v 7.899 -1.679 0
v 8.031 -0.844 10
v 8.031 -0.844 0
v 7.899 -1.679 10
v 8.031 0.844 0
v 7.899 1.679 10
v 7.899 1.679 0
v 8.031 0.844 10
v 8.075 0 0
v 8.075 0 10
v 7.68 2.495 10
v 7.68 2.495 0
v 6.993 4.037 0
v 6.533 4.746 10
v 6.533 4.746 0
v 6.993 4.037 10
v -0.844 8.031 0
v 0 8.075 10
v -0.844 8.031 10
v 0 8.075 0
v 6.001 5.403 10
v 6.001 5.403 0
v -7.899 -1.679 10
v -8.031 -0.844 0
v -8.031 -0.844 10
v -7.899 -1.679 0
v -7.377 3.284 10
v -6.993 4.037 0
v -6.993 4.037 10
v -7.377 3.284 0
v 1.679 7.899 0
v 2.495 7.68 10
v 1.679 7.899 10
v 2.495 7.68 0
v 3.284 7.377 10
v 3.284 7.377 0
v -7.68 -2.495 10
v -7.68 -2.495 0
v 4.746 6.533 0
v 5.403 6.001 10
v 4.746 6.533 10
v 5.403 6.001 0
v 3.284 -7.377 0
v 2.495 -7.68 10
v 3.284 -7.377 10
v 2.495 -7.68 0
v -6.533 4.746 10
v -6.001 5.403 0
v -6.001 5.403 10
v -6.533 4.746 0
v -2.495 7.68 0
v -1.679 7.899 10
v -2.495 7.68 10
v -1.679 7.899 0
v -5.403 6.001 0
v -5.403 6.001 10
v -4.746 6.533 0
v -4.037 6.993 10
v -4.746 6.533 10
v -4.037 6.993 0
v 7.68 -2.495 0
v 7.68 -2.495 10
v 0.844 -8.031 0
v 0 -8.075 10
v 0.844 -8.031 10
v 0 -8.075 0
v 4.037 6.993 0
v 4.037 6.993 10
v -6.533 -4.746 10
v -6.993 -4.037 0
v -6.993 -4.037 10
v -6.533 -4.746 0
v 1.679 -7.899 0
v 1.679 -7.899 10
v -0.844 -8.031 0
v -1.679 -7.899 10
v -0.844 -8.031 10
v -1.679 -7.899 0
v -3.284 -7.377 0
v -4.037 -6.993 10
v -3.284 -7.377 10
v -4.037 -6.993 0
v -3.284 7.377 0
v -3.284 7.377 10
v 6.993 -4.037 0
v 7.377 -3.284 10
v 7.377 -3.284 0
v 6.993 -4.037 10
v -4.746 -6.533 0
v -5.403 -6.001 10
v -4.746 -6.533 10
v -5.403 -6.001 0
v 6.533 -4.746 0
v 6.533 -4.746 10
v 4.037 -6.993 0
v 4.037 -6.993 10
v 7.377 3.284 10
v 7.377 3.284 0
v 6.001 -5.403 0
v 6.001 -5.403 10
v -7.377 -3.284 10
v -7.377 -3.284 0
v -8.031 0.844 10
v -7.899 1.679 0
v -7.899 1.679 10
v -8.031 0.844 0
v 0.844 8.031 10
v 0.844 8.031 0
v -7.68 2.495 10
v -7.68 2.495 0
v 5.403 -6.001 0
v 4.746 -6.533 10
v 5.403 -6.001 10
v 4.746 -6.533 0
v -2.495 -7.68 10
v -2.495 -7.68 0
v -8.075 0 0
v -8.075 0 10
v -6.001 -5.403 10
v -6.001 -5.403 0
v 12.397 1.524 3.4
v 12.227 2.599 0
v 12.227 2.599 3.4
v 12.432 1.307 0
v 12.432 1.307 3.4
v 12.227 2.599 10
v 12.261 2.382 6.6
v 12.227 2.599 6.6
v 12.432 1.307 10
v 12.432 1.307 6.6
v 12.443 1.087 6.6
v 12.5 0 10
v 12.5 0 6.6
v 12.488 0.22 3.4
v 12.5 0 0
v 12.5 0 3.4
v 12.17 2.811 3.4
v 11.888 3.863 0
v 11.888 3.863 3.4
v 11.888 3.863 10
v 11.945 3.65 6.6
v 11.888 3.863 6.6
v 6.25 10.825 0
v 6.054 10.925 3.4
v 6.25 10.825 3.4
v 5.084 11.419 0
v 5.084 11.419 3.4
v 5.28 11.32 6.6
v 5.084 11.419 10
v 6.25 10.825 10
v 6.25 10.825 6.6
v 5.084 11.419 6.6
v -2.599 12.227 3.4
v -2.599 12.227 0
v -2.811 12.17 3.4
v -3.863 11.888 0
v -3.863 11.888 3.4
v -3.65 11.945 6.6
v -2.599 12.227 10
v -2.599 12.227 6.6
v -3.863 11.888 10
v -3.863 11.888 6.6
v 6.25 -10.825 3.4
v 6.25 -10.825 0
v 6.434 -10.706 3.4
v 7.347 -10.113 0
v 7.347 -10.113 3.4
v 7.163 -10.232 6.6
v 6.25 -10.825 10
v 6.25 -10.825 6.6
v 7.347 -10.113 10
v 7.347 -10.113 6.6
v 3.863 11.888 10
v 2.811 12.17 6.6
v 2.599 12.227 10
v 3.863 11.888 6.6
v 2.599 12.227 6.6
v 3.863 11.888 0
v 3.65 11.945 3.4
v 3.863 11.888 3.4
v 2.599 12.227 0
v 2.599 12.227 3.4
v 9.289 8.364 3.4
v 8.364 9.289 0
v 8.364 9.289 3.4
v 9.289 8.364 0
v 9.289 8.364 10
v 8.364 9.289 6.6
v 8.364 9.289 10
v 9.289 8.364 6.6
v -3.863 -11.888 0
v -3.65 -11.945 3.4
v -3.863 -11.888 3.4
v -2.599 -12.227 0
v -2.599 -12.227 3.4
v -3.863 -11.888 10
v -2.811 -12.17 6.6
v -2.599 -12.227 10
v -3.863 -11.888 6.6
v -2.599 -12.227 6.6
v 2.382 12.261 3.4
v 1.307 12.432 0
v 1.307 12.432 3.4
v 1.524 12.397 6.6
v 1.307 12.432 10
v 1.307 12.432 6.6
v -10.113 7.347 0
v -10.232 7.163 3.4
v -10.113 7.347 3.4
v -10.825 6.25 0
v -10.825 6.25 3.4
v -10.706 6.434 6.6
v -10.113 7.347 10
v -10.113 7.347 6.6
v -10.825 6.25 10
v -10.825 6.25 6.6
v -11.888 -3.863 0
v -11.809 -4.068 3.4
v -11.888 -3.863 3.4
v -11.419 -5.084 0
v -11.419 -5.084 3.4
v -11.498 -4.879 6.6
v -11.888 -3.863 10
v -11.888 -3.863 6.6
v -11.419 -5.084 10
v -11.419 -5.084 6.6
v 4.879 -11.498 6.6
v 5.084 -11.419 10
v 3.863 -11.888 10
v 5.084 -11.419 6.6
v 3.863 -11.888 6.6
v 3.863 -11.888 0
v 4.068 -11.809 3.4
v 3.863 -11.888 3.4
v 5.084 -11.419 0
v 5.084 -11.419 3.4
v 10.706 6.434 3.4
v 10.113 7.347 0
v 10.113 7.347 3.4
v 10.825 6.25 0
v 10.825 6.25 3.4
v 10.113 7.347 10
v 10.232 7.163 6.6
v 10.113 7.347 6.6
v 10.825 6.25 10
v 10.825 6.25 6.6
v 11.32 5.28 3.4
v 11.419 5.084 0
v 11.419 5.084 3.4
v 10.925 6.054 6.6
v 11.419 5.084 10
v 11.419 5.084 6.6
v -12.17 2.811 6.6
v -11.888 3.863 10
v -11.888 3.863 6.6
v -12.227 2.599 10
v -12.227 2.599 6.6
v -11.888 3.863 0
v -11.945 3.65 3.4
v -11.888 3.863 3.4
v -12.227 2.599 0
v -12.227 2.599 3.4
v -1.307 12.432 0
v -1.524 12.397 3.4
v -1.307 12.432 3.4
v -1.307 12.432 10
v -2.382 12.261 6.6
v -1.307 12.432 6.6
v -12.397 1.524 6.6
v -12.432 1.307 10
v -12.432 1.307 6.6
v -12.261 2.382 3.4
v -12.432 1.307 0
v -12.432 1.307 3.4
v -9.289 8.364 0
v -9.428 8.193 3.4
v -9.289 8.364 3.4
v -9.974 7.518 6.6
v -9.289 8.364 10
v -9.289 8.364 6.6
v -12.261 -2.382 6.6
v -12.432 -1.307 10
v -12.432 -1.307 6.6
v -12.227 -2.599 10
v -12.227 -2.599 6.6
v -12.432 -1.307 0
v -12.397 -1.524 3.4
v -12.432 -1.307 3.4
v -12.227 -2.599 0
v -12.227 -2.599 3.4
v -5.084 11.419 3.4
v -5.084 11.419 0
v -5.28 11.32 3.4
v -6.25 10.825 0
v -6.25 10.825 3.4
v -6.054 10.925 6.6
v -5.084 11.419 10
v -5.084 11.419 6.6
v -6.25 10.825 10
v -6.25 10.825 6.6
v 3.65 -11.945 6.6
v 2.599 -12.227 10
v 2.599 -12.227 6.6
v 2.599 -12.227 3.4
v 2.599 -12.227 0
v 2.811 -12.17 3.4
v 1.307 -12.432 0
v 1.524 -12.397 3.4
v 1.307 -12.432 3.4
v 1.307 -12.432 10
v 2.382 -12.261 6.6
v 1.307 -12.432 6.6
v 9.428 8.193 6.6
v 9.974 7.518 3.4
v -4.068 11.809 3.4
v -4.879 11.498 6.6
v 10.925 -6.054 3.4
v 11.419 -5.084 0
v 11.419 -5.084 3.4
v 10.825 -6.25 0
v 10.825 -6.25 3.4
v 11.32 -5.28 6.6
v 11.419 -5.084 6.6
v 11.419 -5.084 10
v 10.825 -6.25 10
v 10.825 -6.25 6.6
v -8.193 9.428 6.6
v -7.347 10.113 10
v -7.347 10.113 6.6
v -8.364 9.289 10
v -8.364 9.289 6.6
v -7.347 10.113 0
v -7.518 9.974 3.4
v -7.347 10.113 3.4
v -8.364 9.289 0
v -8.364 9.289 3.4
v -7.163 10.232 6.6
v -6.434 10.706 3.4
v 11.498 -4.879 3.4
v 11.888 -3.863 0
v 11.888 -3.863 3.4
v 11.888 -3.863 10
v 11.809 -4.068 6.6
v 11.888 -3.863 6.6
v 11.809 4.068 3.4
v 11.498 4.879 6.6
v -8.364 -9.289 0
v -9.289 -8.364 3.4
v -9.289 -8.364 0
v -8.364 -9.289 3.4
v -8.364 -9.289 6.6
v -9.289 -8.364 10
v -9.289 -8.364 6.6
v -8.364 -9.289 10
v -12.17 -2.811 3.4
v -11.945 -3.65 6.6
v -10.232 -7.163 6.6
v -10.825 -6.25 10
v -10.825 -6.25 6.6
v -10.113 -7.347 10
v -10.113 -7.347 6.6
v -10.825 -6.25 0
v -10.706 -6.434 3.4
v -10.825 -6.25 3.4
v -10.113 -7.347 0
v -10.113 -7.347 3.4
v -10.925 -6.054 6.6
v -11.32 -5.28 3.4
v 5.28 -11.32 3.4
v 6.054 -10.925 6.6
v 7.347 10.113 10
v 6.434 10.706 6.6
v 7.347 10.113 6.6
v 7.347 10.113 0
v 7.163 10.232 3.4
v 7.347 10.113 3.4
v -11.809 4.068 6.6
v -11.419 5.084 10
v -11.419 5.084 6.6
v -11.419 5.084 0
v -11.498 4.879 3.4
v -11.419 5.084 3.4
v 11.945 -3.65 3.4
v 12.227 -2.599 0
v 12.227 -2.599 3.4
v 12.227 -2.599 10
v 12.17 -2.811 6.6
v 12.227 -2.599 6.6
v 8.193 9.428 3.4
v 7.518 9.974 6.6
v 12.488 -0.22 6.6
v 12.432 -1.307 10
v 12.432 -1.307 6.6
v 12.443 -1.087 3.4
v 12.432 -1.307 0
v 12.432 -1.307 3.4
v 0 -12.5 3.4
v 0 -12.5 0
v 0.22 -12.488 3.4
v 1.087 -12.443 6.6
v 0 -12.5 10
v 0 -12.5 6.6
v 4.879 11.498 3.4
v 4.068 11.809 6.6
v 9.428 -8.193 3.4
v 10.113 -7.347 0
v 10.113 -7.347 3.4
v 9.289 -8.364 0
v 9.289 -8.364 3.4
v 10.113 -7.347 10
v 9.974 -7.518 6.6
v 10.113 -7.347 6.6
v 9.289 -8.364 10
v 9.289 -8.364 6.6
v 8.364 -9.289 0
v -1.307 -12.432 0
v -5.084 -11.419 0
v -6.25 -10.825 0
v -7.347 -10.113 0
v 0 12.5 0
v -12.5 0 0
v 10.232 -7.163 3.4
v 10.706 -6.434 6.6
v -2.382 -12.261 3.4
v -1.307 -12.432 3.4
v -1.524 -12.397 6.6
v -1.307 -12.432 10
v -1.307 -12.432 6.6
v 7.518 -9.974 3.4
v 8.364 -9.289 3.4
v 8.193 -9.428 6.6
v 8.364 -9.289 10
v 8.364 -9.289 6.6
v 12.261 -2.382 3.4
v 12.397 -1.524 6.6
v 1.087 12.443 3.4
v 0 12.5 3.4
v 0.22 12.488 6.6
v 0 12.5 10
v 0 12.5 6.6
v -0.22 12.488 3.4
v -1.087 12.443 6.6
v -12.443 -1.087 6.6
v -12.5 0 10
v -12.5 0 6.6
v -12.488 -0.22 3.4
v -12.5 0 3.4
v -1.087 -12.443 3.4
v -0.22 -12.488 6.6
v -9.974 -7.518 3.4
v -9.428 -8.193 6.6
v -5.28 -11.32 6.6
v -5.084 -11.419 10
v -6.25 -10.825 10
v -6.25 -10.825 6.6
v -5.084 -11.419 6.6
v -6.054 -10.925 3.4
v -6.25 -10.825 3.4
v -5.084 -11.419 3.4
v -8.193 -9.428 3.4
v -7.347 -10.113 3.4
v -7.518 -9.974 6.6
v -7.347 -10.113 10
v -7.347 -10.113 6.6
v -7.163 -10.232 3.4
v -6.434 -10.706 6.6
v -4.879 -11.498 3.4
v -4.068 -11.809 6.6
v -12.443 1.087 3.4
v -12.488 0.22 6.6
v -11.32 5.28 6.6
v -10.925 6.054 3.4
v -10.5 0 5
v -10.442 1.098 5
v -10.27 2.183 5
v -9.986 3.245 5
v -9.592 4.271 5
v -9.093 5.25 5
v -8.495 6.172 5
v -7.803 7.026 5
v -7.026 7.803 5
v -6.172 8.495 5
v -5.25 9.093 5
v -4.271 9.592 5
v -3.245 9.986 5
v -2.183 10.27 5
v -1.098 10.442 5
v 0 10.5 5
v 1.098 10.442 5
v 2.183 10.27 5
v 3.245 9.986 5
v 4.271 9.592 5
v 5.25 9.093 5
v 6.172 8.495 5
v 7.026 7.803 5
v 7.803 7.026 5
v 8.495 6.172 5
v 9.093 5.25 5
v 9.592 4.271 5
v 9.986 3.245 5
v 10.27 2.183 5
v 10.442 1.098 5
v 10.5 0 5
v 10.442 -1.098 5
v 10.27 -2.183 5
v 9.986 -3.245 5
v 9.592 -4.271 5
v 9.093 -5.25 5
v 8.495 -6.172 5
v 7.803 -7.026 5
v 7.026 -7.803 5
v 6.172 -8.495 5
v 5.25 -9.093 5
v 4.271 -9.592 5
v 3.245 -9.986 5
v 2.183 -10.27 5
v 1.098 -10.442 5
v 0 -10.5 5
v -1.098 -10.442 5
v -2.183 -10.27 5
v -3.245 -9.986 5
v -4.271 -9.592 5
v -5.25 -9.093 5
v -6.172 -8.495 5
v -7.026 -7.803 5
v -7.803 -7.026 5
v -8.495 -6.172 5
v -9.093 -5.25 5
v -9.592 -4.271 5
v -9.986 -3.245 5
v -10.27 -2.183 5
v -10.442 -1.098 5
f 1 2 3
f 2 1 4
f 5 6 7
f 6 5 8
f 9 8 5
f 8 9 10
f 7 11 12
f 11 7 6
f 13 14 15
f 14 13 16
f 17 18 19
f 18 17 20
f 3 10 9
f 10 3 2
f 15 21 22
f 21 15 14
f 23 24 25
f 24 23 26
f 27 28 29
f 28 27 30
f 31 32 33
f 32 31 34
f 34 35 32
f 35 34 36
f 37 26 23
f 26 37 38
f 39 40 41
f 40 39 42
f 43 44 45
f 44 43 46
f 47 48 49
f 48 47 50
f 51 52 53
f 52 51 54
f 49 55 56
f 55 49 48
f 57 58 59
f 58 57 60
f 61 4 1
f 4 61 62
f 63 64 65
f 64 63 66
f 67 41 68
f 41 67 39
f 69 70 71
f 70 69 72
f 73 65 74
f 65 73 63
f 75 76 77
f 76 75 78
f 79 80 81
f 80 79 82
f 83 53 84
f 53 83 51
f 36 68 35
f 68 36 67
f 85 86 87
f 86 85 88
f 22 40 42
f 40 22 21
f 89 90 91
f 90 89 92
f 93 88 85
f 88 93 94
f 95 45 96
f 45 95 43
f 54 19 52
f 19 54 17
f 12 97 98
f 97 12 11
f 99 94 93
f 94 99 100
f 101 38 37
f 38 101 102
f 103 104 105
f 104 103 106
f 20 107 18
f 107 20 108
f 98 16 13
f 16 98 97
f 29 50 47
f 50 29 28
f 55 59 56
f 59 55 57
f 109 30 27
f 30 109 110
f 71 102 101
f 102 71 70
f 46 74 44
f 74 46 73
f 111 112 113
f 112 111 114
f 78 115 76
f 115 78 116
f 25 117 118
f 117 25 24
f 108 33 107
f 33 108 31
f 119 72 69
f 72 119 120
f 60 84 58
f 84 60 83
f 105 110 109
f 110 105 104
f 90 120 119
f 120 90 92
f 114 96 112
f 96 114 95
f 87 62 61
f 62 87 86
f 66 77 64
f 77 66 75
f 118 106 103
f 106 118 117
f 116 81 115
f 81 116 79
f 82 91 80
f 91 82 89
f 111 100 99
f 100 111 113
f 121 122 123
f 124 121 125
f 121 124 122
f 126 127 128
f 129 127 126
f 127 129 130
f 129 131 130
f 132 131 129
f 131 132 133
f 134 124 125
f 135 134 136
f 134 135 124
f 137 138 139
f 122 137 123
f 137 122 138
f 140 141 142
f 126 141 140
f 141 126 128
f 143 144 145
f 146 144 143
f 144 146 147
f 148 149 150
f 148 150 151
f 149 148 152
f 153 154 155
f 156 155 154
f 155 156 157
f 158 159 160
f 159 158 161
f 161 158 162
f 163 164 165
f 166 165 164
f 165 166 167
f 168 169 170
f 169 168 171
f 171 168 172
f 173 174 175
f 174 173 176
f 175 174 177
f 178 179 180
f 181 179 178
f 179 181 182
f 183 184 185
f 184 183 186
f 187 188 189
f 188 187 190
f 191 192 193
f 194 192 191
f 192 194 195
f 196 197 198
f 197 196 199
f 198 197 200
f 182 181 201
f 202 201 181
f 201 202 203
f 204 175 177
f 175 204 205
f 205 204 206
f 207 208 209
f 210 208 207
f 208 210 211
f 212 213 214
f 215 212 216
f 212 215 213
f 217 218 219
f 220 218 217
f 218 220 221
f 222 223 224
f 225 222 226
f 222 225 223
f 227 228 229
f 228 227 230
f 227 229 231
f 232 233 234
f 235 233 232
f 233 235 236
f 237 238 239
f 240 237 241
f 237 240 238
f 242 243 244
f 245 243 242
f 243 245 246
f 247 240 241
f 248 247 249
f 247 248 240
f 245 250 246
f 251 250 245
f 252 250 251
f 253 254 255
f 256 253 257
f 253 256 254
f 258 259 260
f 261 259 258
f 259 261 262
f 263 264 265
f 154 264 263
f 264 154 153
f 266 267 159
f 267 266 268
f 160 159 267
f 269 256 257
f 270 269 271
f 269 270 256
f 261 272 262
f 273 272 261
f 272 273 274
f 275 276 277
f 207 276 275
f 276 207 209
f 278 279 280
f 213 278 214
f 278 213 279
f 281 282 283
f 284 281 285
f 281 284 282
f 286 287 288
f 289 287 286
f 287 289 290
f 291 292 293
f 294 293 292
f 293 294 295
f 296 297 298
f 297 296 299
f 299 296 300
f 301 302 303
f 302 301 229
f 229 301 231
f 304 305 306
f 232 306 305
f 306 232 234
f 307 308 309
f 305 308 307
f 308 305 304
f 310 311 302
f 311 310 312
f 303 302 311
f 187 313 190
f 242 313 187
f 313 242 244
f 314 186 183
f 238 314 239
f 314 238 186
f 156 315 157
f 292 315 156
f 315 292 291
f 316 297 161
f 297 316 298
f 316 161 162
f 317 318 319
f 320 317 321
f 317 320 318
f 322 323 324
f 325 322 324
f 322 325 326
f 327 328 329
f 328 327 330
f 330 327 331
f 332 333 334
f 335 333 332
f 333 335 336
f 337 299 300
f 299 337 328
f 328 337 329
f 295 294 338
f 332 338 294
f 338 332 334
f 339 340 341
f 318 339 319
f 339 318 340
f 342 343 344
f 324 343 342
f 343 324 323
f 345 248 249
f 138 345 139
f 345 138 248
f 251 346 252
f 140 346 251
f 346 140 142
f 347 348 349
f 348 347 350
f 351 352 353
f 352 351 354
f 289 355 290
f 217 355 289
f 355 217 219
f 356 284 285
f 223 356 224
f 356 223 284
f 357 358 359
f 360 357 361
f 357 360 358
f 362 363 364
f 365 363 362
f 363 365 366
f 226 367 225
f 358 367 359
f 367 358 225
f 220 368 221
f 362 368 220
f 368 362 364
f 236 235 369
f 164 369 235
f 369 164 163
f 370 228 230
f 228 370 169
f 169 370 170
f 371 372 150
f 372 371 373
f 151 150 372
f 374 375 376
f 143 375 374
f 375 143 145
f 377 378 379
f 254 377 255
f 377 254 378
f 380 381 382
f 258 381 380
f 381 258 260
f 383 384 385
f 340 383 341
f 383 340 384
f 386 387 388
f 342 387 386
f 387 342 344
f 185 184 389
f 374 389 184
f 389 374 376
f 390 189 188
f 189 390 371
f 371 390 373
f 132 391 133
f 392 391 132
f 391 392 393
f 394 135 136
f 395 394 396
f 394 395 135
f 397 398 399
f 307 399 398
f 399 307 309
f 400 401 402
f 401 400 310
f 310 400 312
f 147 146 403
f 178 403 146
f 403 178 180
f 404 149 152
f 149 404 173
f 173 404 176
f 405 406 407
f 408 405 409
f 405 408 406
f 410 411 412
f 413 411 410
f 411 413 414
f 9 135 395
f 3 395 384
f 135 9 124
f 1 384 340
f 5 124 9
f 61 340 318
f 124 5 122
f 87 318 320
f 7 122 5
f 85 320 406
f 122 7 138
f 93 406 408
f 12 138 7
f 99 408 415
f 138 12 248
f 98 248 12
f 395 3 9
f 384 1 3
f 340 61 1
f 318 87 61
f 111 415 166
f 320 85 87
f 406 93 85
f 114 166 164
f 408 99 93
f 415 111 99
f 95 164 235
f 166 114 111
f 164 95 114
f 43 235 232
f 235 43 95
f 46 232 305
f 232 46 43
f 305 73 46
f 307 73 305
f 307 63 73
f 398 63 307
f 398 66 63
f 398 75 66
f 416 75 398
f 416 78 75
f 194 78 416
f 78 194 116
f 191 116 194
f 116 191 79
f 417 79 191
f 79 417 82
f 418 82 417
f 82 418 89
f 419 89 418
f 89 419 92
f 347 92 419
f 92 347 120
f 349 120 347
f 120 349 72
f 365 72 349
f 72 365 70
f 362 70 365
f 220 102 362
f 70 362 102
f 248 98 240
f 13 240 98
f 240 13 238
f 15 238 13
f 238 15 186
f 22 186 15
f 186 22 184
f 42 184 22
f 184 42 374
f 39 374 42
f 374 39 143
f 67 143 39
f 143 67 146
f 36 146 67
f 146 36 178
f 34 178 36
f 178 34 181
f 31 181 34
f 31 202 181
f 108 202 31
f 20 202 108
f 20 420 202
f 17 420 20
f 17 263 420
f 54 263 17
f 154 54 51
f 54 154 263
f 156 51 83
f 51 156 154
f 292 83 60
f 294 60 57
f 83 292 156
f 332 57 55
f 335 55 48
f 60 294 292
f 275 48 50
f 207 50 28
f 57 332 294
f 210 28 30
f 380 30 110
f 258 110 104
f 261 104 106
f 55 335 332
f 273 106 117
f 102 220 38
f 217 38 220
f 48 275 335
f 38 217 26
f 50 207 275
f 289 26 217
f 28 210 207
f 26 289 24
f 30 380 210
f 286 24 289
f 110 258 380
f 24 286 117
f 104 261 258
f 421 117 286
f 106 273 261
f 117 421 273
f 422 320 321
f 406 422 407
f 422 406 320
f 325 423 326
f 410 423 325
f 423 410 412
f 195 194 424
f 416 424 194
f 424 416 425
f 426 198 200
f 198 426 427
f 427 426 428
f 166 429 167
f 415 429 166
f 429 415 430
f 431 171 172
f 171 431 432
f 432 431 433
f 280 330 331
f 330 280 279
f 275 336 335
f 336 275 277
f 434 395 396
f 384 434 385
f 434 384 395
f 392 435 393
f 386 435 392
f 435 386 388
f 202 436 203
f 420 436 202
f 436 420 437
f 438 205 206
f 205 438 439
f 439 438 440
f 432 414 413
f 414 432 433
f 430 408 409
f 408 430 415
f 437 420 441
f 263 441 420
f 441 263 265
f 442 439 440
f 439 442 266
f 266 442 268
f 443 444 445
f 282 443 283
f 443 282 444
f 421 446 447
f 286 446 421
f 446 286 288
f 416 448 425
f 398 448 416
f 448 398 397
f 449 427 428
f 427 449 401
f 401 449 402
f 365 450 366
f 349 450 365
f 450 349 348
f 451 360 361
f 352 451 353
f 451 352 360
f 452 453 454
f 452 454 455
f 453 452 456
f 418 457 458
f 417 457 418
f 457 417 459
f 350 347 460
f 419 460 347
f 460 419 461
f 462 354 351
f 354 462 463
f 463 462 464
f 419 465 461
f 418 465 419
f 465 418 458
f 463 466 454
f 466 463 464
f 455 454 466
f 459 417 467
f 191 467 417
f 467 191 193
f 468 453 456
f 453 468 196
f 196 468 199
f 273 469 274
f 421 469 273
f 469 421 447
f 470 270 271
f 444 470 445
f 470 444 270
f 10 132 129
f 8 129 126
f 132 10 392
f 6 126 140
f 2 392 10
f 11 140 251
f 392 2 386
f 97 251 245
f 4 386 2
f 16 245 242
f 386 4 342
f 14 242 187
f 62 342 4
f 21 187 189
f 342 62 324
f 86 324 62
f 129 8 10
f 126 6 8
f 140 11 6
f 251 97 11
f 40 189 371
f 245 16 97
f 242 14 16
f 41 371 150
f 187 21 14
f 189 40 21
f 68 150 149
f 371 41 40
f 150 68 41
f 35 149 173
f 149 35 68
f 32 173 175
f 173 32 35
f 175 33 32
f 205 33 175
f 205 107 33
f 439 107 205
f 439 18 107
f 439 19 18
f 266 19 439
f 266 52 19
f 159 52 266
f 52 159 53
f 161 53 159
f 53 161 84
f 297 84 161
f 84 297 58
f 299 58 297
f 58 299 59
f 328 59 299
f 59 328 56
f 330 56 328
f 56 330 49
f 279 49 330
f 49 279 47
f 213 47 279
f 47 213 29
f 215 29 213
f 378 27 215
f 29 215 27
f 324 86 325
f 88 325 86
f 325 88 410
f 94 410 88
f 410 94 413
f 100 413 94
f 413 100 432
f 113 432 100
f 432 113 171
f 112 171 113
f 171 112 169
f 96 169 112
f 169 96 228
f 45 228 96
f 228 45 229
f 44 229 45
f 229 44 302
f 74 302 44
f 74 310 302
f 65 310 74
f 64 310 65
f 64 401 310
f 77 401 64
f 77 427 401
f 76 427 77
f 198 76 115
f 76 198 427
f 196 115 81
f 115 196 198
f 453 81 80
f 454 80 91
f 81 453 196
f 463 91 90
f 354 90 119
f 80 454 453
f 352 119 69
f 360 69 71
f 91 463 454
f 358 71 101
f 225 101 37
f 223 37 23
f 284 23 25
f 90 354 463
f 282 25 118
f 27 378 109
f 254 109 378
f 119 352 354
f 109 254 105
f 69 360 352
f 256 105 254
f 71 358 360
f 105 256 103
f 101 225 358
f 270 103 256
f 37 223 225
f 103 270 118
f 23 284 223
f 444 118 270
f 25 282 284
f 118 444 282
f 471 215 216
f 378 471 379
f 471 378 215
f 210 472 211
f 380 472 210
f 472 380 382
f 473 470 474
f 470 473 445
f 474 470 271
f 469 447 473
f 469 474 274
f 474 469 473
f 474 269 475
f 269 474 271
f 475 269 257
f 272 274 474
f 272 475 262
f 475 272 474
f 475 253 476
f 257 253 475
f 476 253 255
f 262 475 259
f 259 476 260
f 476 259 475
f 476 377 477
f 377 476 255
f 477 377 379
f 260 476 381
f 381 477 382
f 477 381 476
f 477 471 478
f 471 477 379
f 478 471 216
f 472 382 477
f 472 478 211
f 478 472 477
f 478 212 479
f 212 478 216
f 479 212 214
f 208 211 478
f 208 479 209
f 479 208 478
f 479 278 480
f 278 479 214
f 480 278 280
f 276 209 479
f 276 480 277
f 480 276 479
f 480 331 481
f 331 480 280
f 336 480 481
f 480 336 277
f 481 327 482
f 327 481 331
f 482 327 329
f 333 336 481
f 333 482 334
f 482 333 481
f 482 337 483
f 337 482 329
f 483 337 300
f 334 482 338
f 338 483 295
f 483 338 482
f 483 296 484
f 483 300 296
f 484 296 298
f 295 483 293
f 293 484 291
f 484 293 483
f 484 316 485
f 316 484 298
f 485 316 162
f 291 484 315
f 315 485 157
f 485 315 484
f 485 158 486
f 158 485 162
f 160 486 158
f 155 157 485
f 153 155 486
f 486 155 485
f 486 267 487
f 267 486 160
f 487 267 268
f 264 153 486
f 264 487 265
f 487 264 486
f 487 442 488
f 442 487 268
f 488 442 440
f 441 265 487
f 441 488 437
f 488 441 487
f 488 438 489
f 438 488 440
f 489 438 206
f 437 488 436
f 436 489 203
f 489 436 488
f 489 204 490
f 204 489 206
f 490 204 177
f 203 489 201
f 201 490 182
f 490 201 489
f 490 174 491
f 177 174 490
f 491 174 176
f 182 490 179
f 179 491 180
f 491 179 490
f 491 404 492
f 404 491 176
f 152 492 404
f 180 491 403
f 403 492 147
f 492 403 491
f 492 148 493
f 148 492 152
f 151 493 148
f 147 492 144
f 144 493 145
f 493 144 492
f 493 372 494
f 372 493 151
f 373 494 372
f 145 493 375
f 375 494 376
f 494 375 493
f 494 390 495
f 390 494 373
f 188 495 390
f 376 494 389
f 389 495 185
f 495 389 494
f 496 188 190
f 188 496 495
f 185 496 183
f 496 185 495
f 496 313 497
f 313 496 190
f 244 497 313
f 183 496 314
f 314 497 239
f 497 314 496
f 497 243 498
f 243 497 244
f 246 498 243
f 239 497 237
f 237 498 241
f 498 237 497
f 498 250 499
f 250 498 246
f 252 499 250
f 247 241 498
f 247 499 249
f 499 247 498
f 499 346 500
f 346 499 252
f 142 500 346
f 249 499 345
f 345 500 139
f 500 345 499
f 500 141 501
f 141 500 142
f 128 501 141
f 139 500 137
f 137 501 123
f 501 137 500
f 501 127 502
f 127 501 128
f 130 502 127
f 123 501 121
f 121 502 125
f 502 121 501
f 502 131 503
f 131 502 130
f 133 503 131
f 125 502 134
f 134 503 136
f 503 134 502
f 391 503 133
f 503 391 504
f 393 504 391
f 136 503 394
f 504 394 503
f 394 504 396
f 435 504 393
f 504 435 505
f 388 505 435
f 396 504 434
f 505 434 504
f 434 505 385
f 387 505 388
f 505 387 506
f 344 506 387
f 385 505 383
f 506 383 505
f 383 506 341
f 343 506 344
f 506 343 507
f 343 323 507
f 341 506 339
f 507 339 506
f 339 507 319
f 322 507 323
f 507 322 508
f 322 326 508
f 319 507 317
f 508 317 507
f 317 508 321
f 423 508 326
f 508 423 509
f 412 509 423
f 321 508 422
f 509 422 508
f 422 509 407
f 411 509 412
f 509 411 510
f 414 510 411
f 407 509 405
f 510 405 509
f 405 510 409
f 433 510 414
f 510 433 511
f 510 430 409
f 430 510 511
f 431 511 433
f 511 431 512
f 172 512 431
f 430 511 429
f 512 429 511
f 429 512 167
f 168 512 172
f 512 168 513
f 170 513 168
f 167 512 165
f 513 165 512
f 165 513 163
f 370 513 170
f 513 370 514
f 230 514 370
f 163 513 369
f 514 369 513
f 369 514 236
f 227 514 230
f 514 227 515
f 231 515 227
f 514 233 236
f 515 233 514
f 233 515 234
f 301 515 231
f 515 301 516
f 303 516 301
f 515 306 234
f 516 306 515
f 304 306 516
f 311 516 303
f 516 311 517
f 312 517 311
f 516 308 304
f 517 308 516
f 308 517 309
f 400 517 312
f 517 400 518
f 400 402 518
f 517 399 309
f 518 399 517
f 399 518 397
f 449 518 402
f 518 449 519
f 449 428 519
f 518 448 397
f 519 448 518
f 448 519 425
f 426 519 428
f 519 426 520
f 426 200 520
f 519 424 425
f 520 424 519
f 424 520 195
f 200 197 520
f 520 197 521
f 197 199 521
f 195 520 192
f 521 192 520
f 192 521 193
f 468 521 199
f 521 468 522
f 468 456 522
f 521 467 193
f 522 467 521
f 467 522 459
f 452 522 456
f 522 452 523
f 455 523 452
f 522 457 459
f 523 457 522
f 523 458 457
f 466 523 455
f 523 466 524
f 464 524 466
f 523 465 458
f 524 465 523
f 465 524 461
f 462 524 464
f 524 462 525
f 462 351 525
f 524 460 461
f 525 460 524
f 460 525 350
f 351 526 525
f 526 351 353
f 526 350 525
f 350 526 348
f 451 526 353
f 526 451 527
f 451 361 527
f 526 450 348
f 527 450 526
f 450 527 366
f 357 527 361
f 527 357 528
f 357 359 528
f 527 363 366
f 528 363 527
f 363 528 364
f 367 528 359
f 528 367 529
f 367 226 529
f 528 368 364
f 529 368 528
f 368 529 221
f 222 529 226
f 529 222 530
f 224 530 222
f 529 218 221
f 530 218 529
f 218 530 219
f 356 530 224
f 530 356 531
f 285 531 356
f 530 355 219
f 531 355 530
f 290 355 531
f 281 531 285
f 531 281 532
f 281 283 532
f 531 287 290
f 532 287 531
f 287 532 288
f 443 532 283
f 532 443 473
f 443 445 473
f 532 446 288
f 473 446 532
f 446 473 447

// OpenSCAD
// file: common.scad
// common.scad — Shared dimensions for FilamentFixer 3D printed parts
// All units in mm.

// --- MG996R Servo Dimensions ---
servo_body_w = 20.0;     // width (side to side)
servo_body_l = 40.7;     // length (front to back)
servo_body_h = 36.5;     // height (bottom to mounting tab top)
servo_tab_w  = 54.5;     // total width across mounting tabs
servo_tab_h  = 2.5;      // tab thickness
servo_tab_y  = 27.0;     // tab distance from bottom of servo
servo_shaft_offset = 10.0; // shaft center from front face
servo_shaft_dia = 6.0;   // output shaft diameter
servo_spline_dia = 5.8;  // 25T spline OD
servo_hole_dia = 4.5;    // mounting screw hole diameter (M4)
servo_hole_spacing_w = 49.0; // hole center to center (width)
servo_hole_spacing_l = 10.0; // hole center to center (length, front-back)
servo_total_h = 42.9;    // total height including shaft nub

// --- Print Tolerances ---
tol = 0.3;               // general clearance tolerance
tol_tight = 0.15;        // tight fit tolerance

// --- Fastener Sizes ---
m3_hole = 3.2;
m3_head = 5.8;
m3_insert = 4.2;         // heat-set insert hole
m4_hole = 4.3;
m4_head = 7.2;

// --- Filament ---
filament_dia = 1.75;     // standard filament diameter

// --- Potentiometer (typical 16mm panel-mount rotary pot) ---
pot_body_dia = 16.0;     // pot body diameter
pot_shaft_dia = 6.0;     // D-shaft diameter (round part)
pot_shaft_flat = 4.5;    // D-shaft flat-to-round distance
pot_shaft_len = 15.0;    // shaft length above body
pot_bushing_dia = 7.2;   // threaded bushing OD (panel mount hole)
pot_bushing_len = 9.0;   // bushing length
pot_body_h = 10.0;       // body height (below bushing)
pot_tab_w = 3.0;         // anti-rotation tab width
pot_tab_depth = 2.0;     // anti-rotation tab slot depth

// --- D-shaft profile (matches pot shaft) ---
dshaft_dia = 6.0;        // round diameter
dshaft_flat = 4.5;       // flat-to-round distance (D cut depth)
dshaft_len = 10.0;       // length extending below arm hub

// --- Reed switch (glass body, typical) ---
reed_body_l = 14.0;      // glass body length
reed_body_dia = 2.5;     // glass body diameter
reed_lead_dia = 0.5;     // lead wire diameter
reed_mount_id = 3.0;     // clip inner diameter (holds reed body)

$fn = 60;
// main file
// guide_wheel.scad — Filament guide wheel with groove
// Mounts at the tip of the feed arm on an axle.
// Has a V-groove to guide the filament.
// Designed for a rotary encoder or simply free-spinning on a bolt.

include <common.scad>

// --- Wheel Parameters ---
wheel_od = 25;              // outer diameter
wheel_width = 10;           // total width
groove_depth = 2.5;         // how deep the V-groove cuts into the OD
groove_width = 4;           // groove width at the rim
groove_angle = 60;          // V-groove angle

axle_dia = 5.0;             // M5 bolt or 5mm shaft
bearing_od = 16;            // 625ZZ bearing OD (if using bearing) or just clearance
bearing_h = 5;              // bearing width
use_bearing = true;         // set false for plain bore

// Encoder magnet pocket (for AS5600 or similar magnetic encoder)
magnet_dia = 6.2;           // 6mm diametric magnet
magnet_depth = 3;

module guide_wheel() {
    difference() {
        union() {
            // Main wheel body
            cylinder(d=wheel_od, h=wheel_width);
        }

        // V-groove around the circumference
        translate([0, 0, wheel_width/2])
            rotate_extrude()
                translate([wheel_od/2 - groove_depth + 0.5, 0, 0])
                    polygon([
                        [groove_depth, -groove_width/2],
                        [0, 0],
                        [groove_depth, groove_width/2]
                    ]);

        // Axle bore
        if (use_bearing) {
            // Bearing pocket (press fit from each side)
            translate([0, 0, -0.1])
                cylinder(d=bearing_od + tol_tight, h=bearing_h + 0.1);
            translate([0, 0, wheel_width - bearing_h])
                cylinder(d=bearing_od + tol_tight, h=bearing_h + 0.2);
            // Through hole for axle
            translate([0, 0, -0.1])
                cylinder(d=axle_dia + tol, h=wheel_width + 1);
        } else {
            // Plain bore with clearance
            translate([0, 0, -0.1])
                cylinder(d=axle_dia + tol*2, h=wheel_width + 1);
        }

        // Encoder magnet pocket (top face, centered)
        translate([0, 0, wheel_width - magnet_depth])
            cylinder(d=magnet_dia, h=magnet_depth + 0.1);
    }
}

guide_wheel();

echo("=== Guide Wheel ===");
echo(str("OD: ", wheel_od, " mm"));
echo(str("Width: ", wheel_width, " mm"));
echo(str("Axle: ", axle_dia, " mm"));
echo(str("Bearing: ", use_bearing ? "625ZZ" : "plain bore"));
